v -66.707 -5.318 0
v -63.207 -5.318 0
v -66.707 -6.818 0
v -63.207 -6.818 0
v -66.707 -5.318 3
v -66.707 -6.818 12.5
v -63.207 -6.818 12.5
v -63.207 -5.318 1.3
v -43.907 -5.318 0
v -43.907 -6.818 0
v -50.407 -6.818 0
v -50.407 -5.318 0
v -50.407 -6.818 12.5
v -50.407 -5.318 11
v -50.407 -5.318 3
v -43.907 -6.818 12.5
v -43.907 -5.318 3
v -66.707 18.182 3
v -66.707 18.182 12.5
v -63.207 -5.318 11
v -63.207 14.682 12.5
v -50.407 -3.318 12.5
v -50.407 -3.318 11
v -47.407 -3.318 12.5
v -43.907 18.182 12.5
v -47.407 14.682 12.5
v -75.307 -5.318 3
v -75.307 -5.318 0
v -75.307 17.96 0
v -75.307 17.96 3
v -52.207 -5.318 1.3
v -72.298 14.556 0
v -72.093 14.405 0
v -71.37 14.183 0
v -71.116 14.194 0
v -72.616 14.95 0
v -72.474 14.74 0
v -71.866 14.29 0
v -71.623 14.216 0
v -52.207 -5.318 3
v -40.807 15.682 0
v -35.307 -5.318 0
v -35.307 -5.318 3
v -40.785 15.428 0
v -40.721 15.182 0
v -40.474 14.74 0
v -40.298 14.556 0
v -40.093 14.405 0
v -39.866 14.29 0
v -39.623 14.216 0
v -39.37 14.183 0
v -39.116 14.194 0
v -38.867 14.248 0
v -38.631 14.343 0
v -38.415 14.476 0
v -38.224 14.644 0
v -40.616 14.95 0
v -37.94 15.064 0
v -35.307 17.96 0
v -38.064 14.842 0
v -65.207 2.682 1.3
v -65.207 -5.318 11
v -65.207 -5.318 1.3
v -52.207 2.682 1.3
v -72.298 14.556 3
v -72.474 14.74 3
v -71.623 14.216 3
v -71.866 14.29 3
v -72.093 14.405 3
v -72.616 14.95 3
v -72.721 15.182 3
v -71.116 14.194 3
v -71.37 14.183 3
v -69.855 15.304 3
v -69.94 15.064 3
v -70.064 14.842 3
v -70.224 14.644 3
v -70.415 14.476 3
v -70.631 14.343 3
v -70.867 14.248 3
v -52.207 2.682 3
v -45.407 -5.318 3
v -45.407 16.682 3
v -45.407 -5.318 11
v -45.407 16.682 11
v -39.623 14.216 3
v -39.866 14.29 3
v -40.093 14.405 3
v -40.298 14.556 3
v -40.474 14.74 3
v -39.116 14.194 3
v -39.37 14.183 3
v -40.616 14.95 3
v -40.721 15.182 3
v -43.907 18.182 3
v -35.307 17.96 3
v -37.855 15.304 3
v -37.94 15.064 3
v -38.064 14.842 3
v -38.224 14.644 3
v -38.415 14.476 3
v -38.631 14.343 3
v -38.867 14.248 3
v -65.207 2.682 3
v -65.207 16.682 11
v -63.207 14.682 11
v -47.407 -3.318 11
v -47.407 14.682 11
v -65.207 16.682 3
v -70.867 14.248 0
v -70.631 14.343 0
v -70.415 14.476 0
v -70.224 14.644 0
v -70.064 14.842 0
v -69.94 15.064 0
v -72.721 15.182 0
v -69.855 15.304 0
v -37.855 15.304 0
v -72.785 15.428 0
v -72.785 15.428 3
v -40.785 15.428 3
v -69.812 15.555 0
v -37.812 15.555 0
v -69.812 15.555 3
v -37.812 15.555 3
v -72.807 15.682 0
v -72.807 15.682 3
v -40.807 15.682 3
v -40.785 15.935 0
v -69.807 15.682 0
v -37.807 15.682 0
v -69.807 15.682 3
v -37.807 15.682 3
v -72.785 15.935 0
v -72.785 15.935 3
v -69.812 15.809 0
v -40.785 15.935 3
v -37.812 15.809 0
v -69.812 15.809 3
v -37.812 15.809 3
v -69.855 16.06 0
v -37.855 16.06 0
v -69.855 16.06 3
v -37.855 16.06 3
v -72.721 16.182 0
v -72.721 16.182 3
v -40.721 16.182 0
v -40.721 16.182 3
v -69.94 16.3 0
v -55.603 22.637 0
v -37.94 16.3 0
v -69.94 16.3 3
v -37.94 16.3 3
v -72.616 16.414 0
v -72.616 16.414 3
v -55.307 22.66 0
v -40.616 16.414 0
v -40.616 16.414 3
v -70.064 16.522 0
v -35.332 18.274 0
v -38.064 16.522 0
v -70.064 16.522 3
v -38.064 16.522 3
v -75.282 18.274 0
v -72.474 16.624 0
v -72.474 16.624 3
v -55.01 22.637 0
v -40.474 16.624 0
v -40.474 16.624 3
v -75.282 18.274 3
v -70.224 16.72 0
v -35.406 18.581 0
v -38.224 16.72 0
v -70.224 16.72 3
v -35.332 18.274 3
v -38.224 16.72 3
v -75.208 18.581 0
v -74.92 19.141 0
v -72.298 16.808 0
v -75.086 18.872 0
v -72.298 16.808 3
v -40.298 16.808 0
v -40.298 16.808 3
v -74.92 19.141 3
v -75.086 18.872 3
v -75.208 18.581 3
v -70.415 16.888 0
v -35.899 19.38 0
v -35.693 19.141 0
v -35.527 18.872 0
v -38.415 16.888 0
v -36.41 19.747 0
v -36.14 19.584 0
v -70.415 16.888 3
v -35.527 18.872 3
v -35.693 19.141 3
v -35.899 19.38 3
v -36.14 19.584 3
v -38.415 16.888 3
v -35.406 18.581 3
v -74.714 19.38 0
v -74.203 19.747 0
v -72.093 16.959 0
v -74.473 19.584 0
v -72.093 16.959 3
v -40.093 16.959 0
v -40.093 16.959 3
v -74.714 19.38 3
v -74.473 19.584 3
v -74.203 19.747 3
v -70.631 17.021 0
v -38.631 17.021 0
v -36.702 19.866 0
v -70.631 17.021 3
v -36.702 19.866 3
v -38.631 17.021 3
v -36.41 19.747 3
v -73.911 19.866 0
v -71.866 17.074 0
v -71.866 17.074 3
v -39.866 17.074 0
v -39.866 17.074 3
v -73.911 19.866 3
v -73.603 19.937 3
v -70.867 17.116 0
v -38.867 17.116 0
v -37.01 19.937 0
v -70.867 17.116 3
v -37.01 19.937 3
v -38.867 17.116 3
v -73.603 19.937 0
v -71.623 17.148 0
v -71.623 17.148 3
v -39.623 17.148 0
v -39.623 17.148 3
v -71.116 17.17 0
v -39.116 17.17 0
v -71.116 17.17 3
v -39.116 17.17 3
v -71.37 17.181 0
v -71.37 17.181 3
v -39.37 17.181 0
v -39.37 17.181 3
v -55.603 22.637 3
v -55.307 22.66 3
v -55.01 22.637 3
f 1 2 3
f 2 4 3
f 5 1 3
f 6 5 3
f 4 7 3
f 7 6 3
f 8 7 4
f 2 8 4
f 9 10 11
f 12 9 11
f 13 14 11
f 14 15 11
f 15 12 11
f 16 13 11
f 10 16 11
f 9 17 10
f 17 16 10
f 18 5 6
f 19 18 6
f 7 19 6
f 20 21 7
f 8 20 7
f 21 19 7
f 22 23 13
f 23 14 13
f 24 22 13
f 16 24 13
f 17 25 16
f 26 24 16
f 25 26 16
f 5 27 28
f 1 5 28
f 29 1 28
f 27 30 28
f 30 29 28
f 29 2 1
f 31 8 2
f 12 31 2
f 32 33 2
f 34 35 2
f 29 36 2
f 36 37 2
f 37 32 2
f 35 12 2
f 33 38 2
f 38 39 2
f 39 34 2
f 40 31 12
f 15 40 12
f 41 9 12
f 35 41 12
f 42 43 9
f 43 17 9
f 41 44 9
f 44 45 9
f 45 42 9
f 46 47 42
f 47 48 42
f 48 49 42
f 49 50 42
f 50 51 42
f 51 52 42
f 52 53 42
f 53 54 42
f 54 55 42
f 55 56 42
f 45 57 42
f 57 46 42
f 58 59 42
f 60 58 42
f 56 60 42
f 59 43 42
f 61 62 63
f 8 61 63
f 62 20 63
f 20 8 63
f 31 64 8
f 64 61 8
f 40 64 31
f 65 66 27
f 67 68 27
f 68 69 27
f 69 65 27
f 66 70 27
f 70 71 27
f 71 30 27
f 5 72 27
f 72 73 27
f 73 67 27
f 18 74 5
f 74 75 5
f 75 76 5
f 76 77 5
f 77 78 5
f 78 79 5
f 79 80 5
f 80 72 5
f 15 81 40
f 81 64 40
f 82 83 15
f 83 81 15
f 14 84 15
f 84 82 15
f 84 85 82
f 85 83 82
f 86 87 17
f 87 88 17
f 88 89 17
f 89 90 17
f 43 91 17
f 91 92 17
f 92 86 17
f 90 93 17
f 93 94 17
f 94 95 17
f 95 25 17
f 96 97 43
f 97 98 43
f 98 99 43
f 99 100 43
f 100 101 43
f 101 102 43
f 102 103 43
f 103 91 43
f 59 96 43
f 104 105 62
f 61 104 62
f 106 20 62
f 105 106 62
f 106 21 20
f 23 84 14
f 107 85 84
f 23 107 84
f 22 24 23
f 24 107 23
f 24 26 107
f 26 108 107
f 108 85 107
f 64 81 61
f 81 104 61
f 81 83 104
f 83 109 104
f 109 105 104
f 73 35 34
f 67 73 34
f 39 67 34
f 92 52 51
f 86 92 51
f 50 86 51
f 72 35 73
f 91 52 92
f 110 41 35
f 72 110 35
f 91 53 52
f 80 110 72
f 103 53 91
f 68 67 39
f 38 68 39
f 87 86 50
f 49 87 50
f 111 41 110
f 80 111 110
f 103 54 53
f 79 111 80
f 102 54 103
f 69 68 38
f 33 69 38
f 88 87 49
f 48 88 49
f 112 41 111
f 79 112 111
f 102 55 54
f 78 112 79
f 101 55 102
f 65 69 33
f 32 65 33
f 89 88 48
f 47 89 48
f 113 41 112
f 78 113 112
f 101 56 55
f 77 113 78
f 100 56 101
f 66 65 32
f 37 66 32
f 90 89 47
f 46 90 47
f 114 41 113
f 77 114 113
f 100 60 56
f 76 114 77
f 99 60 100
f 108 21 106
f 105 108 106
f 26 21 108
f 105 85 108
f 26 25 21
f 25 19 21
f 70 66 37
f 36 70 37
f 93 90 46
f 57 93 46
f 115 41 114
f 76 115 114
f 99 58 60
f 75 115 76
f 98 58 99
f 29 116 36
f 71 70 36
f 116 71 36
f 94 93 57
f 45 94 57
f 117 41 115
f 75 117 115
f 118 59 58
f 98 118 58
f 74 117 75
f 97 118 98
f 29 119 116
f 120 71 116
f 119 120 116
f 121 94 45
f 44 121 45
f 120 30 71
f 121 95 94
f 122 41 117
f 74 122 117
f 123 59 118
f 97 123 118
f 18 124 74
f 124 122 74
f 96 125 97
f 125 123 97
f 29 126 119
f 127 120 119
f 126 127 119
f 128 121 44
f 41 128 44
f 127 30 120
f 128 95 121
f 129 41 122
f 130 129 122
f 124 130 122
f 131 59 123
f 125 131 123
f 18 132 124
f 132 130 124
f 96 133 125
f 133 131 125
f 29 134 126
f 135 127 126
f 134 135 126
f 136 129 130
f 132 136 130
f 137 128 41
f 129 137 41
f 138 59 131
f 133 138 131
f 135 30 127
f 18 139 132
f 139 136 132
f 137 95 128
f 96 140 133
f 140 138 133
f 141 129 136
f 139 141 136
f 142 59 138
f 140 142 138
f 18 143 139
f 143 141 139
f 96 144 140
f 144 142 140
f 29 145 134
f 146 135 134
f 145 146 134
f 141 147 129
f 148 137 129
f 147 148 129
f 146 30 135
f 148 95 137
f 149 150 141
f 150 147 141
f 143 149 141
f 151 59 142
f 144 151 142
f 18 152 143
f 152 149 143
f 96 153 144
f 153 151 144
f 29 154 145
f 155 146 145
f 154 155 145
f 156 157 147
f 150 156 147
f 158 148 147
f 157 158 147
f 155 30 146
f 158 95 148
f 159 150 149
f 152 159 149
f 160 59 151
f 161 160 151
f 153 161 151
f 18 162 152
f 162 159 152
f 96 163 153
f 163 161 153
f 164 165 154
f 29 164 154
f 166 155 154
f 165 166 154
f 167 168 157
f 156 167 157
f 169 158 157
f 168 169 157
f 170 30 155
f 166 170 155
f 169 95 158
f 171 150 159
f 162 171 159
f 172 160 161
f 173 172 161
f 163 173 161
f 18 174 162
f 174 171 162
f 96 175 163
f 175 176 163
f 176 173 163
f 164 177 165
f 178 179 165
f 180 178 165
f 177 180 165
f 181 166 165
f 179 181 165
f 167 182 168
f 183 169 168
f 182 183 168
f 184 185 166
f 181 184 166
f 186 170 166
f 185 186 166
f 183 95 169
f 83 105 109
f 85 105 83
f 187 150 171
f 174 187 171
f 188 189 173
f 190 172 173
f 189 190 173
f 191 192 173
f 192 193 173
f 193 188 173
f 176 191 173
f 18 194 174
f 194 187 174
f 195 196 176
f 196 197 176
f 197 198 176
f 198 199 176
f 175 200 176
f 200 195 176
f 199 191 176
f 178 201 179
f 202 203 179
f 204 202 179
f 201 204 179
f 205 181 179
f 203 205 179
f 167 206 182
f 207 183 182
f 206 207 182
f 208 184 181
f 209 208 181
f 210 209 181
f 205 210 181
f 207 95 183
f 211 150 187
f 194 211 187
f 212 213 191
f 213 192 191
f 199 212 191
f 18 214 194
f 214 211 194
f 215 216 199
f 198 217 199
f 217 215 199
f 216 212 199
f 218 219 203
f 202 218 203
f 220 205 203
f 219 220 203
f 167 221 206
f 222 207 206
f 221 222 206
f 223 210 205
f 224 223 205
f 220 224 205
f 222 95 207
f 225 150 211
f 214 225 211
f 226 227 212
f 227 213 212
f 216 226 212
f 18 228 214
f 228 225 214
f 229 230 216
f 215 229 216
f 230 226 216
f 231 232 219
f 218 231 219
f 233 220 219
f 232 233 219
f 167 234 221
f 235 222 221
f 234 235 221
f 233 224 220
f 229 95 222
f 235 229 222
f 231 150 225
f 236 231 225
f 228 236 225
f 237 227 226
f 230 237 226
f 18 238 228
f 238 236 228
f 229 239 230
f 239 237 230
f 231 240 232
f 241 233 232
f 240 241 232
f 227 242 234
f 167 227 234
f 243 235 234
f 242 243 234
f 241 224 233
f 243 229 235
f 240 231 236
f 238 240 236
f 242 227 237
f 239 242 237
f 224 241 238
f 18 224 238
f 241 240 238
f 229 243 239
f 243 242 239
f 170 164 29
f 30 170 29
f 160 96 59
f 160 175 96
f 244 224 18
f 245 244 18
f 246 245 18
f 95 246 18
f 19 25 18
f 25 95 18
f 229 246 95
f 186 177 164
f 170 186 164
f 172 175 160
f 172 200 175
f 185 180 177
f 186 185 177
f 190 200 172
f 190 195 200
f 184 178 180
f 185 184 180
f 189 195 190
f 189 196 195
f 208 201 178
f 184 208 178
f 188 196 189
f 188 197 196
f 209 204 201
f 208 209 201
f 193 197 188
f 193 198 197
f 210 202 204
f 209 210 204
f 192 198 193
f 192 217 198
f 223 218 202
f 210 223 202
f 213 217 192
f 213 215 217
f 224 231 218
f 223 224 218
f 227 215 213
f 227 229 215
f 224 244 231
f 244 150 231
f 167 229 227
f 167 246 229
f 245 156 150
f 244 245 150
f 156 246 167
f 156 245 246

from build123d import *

# Parameters (mm, degrees)
CROQUIS1_R              = 1.5
SALIENTE_EXTRUIR1_DEPTH = 3
SALIENTE_EXTRUIR2_DEPTH = 8
CROQUIS3_W              = 13
CROQUIS3_H              = 1.7
CORTAR_EXTRUIR1_DEPTH   = 8
CROQUIS5_W              = 3.5
CROQUIS5_H              = 11
CROQUIS5_W_2            = 6.5
SALIENTE_EXTRUIR3_DEPTH = 1.5
SALIENTE_EXTRUIR4_DEPTH = 1.5


with BuildPart() as part:
    # Croquis1 → Saliente-Extruir1 (new body)
    with BuildSketch(Plane.XY):
        with BuildLine():
            Line((-55.603283504, 22.637490201), (-73.603283504, 19.937490201))
            ThreePointArc((-73.603283504, 19.937490201), (-74.822083019, 19.26473017), (-75.306602598, 17.959617496))
            Line((-75.306602598, 17.959617496), (-75.306602598, -5.318007663))
            Line((-75.306602598, -5.318007663), (-35.306602598, -5.318007663))
            Line((-35.306602598, -5.318007663), (-35.306602598, 17.959617496))
            ThreePointArc((-35.306602598, 17.959617496), (-35.791122177, 19.26473017), (-37.009921692, 19.937490201))
            Line((-37.009921692, 19.937490201), (-55.009921692, 22.637490201))
            ThreePointArc((-55.009921692, 22.637490201), (-55.306602598, 22.659617496), (-55.603283504, 22.637490201))
        make_face()
        with Locations((-71.306602598, 15.681992337)):
            Circle(CROQUIS1_R, mode=Mode.SUBTRACT)
        with Locations((-39.306602598, 15.681992337)):
            Circle(CROQUIS1_R, mode=Mode.SUBTRACT)
    extrude(amount=SALIENTE_EXTRUIR1_DEPTH)

    # Croquis2 → Saliente-Extruir2 (add)
    with BuildSketch(Plane.XY.offset(3)):
        Polygon((-66.706602598, -5.318007663), (-65.206602598, -5.318007663), (-65.206602598, 16.681992337), (-45.406602598, 16.681992337), (-45.406602598, -5.318007663), (-43.906602598, -5.318007663), (-43.906602598, 18.181992337), (-66.706602598, 18.181992337), align=None)
    extrude(amount=SALIENTE_EXTRUIR2_DEPTH)

    # Croquis3 → Cortar-Extruir1 (cut)
    with BuildSketch(Plane.XZ.offset(5.318007663)):
        with Locations((-58.706602598, 2.15)):
            Rectangle(CROQUIS3_W, CROQUIS3_H)
    extrude(amount=-CORTAR_EXTRUIR1_DEPTH, mode=Mode.SUBTRACT)

    # Croquis5 → Saliente-Extruir3 (add)
    with BuildSketch(Plane.XZ.offset(5.318007663)):
        with Locations((-64.956602598, 5.5)):
            Rectangle(CROQUIS5_W, CROQUIS5_H)
        with Locations((-47.156602598, 5.5)):
            Rectangle(CROQUIS5_W_2, CROQUIS5_H)
    extrude(amount=SALIENTE_EXTRUIR3_DEPTH)

    # Croquis6 → Saliente-Extruir4 (add)
    with BuildSketch(Plane.XY.offset(11)):
        Polygon((-63.206602598, -5.318007663), (-63.206602598, -6.818007663), (-66.706602598, -6.818007663), (-66.706602598, 18.181992337), (-43.906602598, 18.181992337), (-43.906602598, -6.818007663), (-50.406602598, -6.818007663), (-50.406602598, -3.318007663), (-47.406602598, -3.318007663), (-47.406602598, 14.681992337), (-63.206602598, 14.681992337), align=None)
    extrude(amount=SALIENTE_EXTRUIR4_DEPTH)


solid = part.part
